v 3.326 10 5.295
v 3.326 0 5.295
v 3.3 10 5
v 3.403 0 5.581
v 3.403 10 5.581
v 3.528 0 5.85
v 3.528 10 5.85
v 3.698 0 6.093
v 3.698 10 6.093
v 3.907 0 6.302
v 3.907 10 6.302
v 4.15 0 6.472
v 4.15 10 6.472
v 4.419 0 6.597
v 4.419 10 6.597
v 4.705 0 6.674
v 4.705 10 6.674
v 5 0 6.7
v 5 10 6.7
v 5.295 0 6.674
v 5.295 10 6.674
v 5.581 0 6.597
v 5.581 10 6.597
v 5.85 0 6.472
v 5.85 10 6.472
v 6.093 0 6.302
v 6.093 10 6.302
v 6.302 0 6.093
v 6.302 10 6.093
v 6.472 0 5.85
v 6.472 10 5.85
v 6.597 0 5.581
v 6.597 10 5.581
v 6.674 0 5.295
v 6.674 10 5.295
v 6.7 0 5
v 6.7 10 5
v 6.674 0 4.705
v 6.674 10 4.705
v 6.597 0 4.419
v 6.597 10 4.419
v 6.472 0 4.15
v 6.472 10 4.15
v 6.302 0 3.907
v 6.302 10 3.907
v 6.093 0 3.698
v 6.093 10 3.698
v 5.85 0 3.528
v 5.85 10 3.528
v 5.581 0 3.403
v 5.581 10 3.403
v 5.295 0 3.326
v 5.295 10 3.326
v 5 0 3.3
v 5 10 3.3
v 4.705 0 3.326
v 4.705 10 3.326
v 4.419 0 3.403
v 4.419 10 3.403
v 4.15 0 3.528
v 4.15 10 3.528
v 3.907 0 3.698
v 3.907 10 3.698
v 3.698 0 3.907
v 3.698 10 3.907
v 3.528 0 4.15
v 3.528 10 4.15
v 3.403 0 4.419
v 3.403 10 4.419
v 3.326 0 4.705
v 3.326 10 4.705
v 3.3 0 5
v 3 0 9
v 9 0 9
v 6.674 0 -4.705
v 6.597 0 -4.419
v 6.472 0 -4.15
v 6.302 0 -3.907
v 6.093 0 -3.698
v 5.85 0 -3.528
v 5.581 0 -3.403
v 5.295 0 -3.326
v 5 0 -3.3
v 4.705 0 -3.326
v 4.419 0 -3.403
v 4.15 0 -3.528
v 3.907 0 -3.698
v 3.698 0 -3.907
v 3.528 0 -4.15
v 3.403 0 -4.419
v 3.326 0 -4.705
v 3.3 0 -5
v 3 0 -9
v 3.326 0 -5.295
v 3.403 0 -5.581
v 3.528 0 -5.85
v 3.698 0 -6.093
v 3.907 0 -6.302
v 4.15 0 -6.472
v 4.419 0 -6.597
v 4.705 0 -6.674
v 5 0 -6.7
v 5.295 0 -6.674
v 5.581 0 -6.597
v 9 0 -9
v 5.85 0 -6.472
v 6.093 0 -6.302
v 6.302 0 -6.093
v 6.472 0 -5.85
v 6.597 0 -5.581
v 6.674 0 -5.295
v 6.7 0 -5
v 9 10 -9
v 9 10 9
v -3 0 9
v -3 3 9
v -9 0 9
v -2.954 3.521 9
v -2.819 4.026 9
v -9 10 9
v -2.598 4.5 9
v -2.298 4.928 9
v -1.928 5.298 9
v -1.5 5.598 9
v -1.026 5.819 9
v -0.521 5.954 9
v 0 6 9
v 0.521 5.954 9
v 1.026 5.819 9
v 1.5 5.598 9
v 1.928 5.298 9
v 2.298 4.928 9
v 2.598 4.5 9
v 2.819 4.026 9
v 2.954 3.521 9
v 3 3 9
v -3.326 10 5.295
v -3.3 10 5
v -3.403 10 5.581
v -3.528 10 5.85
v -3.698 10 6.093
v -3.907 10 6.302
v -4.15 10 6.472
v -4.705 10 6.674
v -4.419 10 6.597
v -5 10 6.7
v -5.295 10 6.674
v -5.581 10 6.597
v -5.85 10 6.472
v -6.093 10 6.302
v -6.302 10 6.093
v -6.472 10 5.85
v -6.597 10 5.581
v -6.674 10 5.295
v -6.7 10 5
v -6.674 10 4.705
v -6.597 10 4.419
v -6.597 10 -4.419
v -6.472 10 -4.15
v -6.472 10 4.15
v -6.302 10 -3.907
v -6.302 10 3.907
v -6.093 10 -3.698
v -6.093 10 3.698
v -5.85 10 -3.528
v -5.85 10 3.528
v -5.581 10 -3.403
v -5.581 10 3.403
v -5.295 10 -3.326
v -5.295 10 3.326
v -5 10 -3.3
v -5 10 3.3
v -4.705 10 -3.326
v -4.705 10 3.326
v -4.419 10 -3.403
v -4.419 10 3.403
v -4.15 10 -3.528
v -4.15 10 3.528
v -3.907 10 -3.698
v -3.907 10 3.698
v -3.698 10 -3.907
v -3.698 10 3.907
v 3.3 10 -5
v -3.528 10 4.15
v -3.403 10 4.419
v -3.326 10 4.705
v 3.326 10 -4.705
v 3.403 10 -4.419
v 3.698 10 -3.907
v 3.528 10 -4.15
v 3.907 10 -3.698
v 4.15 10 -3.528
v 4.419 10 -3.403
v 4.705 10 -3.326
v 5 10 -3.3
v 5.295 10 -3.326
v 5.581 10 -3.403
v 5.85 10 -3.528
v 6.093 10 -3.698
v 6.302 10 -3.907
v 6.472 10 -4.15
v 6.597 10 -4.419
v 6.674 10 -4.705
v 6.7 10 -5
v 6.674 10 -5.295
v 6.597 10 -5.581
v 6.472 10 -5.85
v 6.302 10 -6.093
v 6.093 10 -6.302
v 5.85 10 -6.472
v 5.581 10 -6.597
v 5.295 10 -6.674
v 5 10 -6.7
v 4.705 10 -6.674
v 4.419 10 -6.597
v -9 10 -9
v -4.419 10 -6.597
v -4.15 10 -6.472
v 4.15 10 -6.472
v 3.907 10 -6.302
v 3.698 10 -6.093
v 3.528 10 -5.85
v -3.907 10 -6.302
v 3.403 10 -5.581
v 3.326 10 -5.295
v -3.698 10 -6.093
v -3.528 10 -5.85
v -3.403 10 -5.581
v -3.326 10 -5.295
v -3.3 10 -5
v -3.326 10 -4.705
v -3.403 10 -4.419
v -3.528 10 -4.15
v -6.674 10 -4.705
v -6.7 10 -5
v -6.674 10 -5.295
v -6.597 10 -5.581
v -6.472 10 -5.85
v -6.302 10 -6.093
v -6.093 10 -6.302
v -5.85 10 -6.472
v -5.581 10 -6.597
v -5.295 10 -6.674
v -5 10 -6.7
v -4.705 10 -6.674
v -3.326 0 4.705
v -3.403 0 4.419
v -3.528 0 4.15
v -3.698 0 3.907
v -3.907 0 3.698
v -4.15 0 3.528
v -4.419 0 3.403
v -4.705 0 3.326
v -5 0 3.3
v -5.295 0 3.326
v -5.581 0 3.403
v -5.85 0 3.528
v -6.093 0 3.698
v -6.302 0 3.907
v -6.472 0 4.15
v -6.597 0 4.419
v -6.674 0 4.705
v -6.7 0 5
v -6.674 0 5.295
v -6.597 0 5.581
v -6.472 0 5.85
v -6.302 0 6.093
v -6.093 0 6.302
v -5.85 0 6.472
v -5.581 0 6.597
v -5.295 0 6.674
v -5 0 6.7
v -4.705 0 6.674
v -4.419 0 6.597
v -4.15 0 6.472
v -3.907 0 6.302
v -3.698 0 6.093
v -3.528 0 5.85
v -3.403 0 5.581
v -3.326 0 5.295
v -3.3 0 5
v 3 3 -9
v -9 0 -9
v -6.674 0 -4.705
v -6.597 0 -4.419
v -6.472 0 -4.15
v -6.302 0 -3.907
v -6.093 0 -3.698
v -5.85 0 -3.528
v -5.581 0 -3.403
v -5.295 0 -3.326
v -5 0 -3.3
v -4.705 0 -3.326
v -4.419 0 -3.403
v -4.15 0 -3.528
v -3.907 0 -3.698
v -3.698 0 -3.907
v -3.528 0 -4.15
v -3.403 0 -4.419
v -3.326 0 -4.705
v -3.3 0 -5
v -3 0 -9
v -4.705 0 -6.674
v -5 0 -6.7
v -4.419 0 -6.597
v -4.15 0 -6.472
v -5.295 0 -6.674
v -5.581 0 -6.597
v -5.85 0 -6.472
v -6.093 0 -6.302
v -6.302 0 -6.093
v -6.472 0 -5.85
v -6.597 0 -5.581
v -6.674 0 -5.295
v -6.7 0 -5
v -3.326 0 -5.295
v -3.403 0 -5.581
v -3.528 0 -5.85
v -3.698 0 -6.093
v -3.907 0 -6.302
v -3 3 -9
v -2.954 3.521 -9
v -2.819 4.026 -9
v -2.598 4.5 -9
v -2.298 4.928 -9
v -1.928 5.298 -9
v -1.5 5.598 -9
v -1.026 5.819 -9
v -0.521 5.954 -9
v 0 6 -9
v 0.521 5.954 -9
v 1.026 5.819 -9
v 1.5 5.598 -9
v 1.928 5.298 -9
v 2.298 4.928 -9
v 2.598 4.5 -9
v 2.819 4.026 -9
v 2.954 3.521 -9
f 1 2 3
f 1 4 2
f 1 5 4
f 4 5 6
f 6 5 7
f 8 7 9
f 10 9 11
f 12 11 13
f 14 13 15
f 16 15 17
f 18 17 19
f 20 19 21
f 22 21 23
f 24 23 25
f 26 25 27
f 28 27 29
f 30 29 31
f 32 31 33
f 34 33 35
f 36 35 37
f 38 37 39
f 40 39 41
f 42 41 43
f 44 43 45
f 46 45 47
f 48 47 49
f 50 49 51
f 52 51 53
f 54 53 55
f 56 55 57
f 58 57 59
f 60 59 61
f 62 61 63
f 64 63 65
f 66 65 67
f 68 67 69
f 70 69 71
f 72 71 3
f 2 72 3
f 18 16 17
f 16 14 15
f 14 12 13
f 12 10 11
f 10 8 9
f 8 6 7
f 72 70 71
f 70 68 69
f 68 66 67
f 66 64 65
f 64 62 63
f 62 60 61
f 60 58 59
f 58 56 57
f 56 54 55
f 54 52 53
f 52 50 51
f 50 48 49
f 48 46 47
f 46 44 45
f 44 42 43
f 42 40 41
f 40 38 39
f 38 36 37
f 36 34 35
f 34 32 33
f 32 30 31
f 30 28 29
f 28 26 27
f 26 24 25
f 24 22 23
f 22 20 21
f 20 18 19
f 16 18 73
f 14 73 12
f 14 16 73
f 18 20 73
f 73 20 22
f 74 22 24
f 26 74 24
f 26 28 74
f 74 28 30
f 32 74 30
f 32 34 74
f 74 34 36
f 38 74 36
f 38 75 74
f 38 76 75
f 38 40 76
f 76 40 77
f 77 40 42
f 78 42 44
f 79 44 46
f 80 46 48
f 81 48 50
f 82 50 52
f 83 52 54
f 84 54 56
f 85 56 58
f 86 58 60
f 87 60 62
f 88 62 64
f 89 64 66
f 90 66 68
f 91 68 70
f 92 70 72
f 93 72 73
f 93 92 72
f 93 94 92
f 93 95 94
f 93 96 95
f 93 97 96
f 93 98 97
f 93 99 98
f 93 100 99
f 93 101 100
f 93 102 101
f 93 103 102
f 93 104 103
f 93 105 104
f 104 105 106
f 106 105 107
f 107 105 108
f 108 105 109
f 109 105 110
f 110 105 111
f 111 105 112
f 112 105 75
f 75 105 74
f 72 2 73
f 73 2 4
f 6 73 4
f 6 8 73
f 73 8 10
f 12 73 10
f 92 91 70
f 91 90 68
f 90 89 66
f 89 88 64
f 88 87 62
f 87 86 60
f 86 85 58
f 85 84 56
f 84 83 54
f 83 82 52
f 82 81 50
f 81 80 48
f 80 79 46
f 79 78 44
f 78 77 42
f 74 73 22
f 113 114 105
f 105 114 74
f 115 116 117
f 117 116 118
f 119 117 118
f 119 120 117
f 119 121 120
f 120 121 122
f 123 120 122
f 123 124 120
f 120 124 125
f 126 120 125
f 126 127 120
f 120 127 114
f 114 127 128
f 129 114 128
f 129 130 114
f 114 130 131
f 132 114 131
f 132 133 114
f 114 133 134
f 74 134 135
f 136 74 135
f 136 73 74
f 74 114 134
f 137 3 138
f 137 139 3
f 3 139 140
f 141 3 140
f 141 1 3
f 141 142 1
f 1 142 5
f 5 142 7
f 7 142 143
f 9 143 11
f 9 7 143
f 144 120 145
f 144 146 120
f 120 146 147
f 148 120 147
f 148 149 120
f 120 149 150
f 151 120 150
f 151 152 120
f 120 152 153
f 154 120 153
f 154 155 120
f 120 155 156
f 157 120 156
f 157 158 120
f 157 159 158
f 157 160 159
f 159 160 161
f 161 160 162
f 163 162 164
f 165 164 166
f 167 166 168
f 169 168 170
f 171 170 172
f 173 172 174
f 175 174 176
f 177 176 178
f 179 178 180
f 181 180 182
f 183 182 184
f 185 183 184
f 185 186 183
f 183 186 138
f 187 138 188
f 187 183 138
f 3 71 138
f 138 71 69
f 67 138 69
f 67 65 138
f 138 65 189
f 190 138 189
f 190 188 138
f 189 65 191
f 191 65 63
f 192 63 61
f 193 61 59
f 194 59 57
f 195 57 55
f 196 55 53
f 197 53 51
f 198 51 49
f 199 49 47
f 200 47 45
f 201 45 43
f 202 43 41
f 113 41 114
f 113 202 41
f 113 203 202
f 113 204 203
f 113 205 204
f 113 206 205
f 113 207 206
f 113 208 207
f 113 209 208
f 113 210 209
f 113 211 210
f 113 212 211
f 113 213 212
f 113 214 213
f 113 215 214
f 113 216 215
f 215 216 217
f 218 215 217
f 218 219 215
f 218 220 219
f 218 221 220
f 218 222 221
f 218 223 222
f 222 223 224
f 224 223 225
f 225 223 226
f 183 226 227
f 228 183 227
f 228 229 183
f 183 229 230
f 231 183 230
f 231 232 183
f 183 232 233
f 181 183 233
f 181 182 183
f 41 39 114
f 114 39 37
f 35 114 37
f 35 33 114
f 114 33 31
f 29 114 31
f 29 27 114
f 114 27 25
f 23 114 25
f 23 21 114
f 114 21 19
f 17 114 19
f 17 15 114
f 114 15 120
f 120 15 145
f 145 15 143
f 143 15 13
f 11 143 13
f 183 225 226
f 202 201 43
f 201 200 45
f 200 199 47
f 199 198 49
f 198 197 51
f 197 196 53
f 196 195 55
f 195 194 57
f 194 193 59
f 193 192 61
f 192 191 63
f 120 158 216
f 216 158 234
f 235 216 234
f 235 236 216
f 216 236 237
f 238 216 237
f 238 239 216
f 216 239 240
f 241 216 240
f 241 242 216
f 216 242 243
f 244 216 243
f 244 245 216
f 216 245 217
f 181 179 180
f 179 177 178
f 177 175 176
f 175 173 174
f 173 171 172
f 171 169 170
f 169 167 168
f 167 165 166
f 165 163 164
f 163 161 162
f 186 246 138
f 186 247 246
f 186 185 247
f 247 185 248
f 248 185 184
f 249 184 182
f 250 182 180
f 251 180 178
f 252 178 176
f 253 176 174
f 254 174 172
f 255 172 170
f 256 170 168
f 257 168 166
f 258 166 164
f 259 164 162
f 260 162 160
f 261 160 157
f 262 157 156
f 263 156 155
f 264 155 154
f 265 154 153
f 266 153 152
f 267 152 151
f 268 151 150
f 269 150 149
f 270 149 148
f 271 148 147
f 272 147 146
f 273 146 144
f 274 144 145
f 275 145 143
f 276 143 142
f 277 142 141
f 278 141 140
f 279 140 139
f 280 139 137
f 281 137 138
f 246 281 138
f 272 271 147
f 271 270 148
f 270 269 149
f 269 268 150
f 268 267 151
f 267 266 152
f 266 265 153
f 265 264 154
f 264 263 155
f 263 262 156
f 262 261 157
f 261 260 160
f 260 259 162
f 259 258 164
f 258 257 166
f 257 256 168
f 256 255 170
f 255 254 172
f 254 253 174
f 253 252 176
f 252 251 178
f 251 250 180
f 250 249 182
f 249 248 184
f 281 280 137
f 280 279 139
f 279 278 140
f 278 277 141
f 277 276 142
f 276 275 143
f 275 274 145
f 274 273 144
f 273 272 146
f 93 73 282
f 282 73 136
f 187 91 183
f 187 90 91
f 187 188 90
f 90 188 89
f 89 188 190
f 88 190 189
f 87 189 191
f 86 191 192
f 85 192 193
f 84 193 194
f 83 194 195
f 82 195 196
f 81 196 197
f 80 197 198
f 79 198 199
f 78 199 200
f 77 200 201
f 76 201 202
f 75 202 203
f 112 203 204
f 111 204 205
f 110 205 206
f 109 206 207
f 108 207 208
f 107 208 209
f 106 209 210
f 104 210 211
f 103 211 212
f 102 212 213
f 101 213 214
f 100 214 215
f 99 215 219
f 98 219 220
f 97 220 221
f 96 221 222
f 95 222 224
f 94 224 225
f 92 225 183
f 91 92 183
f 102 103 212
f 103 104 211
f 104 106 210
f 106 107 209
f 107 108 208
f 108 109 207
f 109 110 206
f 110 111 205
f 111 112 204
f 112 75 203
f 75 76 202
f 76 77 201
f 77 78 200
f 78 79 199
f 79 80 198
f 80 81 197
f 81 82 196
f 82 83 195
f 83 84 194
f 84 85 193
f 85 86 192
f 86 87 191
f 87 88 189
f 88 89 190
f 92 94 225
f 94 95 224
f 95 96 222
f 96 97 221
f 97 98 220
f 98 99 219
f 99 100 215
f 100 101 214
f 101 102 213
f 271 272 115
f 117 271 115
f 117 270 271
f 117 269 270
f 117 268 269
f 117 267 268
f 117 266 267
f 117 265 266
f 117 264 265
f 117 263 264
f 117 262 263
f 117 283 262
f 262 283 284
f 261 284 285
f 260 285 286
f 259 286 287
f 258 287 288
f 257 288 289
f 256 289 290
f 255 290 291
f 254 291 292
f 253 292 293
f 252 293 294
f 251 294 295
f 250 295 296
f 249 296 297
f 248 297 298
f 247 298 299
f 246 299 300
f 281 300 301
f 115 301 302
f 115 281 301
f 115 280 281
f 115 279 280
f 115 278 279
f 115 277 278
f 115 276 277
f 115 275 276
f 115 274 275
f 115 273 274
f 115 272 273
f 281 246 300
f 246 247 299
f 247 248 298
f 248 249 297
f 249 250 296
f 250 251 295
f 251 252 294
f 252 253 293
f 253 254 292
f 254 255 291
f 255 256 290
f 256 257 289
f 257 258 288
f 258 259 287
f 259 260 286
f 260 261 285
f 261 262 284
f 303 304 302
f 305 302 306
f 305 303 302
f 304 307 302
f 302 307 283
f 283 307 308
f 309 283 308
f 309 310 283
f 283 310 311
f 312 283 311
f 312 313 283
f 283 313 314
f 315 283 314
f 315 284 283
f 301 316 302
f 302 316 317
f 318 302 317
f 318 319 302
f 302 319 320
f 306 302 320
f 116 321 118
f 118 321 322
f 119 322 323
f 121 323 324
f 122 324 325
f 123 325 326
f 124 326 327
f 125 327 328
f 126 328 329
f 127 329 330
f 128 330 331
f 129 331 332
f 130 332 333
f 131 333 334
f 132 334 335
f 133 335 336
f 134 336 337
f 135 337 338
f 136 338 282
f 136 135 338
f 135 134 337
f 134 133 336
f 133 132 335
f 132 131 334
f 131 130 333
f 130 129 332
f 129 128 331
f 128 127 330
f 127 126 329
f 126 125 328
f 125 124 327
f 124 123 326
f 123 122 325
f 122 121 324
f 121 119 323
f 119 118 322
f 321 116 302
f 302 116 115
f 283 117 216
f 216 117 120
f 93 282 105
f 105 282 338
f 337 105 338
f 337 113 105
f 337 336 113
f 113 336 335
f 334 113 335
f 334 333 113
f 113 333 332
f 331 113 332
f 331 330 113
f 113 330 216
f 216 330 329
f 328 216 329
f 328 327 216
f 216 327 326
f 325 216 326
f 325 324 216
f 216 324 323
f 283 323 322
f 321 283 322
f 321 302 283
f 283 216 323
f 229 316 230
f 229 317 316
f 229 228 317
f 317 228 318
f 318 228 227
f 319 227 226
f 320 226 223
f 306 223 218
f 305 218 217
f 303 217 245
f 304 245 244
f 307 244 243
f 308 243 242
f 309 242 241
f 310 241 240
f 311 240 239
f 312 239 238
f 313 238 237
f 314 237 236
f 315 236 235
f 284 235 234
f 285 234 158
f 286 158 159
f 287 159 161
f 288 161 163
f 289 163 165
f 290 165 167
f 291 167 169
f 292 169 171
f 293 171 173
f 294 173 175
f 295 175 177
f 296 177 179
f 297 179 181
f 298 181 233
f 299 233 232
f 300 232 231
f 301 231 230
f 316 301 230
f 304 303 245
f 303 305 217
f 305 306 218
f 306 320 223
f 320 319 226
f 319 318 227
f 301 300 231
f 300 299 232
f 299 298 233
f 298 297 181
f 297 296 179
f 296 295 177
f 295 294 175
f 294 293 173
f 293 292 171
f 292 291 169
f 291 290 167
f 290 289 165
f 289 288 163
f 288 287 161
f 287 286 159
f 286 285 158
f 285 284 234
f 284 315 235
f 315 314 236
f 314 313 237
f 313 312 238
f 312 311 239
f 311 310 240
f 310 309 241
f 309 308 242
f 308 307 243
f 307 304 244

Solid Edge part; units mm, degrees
sketch "Sketch1" plane through (0, 0, 0) normal (0, 0, 1) x (1, 0, 0)
  line L0 (-3, 3) -> (-3, 0)
  line L1 (-3, 0) -> (-9, 0)
  line L2 (-9, 0) -> (-9, 10)
  line L3 (-9, 10) -> (9, 10)
  line L4 (9, 10) -> (9, 0)
  line L5 (9, 0) -> (3, 0)
  line L6 (3, 3) -> (3, 0)
  arc A0 (3, 3) -> (-3, 3) centre (0, 3) ccw
  dimension "D1" = 18
  dimension "D2" = 6
  dimension "D3" = 6
  dimension "D4" = 3
extrude "Protrusion1" add sketch "Sketch1" along normal mid plane 18
sketch "Sketch2" plane through (0, 10, 0) normal (0, 1, 0) x (1, 0, 0)
  circle A0 centre (-5, 5) radius 1.7
  dimension "D1" = 4
  dimension "D2" = 4
extrude "Cutout1" cut sketch "Sketch2" against normal through all
mirror "Mirror1" about plane through (0, 0, 0) normal (1, 0, 0) of "Cutout1"
mirror "Mirror2" about plane through (0, 0, 0) normal (0, 0, 1) of "Cutout1", "Mirror1"
properties material "ABS Plastic, high impact"
